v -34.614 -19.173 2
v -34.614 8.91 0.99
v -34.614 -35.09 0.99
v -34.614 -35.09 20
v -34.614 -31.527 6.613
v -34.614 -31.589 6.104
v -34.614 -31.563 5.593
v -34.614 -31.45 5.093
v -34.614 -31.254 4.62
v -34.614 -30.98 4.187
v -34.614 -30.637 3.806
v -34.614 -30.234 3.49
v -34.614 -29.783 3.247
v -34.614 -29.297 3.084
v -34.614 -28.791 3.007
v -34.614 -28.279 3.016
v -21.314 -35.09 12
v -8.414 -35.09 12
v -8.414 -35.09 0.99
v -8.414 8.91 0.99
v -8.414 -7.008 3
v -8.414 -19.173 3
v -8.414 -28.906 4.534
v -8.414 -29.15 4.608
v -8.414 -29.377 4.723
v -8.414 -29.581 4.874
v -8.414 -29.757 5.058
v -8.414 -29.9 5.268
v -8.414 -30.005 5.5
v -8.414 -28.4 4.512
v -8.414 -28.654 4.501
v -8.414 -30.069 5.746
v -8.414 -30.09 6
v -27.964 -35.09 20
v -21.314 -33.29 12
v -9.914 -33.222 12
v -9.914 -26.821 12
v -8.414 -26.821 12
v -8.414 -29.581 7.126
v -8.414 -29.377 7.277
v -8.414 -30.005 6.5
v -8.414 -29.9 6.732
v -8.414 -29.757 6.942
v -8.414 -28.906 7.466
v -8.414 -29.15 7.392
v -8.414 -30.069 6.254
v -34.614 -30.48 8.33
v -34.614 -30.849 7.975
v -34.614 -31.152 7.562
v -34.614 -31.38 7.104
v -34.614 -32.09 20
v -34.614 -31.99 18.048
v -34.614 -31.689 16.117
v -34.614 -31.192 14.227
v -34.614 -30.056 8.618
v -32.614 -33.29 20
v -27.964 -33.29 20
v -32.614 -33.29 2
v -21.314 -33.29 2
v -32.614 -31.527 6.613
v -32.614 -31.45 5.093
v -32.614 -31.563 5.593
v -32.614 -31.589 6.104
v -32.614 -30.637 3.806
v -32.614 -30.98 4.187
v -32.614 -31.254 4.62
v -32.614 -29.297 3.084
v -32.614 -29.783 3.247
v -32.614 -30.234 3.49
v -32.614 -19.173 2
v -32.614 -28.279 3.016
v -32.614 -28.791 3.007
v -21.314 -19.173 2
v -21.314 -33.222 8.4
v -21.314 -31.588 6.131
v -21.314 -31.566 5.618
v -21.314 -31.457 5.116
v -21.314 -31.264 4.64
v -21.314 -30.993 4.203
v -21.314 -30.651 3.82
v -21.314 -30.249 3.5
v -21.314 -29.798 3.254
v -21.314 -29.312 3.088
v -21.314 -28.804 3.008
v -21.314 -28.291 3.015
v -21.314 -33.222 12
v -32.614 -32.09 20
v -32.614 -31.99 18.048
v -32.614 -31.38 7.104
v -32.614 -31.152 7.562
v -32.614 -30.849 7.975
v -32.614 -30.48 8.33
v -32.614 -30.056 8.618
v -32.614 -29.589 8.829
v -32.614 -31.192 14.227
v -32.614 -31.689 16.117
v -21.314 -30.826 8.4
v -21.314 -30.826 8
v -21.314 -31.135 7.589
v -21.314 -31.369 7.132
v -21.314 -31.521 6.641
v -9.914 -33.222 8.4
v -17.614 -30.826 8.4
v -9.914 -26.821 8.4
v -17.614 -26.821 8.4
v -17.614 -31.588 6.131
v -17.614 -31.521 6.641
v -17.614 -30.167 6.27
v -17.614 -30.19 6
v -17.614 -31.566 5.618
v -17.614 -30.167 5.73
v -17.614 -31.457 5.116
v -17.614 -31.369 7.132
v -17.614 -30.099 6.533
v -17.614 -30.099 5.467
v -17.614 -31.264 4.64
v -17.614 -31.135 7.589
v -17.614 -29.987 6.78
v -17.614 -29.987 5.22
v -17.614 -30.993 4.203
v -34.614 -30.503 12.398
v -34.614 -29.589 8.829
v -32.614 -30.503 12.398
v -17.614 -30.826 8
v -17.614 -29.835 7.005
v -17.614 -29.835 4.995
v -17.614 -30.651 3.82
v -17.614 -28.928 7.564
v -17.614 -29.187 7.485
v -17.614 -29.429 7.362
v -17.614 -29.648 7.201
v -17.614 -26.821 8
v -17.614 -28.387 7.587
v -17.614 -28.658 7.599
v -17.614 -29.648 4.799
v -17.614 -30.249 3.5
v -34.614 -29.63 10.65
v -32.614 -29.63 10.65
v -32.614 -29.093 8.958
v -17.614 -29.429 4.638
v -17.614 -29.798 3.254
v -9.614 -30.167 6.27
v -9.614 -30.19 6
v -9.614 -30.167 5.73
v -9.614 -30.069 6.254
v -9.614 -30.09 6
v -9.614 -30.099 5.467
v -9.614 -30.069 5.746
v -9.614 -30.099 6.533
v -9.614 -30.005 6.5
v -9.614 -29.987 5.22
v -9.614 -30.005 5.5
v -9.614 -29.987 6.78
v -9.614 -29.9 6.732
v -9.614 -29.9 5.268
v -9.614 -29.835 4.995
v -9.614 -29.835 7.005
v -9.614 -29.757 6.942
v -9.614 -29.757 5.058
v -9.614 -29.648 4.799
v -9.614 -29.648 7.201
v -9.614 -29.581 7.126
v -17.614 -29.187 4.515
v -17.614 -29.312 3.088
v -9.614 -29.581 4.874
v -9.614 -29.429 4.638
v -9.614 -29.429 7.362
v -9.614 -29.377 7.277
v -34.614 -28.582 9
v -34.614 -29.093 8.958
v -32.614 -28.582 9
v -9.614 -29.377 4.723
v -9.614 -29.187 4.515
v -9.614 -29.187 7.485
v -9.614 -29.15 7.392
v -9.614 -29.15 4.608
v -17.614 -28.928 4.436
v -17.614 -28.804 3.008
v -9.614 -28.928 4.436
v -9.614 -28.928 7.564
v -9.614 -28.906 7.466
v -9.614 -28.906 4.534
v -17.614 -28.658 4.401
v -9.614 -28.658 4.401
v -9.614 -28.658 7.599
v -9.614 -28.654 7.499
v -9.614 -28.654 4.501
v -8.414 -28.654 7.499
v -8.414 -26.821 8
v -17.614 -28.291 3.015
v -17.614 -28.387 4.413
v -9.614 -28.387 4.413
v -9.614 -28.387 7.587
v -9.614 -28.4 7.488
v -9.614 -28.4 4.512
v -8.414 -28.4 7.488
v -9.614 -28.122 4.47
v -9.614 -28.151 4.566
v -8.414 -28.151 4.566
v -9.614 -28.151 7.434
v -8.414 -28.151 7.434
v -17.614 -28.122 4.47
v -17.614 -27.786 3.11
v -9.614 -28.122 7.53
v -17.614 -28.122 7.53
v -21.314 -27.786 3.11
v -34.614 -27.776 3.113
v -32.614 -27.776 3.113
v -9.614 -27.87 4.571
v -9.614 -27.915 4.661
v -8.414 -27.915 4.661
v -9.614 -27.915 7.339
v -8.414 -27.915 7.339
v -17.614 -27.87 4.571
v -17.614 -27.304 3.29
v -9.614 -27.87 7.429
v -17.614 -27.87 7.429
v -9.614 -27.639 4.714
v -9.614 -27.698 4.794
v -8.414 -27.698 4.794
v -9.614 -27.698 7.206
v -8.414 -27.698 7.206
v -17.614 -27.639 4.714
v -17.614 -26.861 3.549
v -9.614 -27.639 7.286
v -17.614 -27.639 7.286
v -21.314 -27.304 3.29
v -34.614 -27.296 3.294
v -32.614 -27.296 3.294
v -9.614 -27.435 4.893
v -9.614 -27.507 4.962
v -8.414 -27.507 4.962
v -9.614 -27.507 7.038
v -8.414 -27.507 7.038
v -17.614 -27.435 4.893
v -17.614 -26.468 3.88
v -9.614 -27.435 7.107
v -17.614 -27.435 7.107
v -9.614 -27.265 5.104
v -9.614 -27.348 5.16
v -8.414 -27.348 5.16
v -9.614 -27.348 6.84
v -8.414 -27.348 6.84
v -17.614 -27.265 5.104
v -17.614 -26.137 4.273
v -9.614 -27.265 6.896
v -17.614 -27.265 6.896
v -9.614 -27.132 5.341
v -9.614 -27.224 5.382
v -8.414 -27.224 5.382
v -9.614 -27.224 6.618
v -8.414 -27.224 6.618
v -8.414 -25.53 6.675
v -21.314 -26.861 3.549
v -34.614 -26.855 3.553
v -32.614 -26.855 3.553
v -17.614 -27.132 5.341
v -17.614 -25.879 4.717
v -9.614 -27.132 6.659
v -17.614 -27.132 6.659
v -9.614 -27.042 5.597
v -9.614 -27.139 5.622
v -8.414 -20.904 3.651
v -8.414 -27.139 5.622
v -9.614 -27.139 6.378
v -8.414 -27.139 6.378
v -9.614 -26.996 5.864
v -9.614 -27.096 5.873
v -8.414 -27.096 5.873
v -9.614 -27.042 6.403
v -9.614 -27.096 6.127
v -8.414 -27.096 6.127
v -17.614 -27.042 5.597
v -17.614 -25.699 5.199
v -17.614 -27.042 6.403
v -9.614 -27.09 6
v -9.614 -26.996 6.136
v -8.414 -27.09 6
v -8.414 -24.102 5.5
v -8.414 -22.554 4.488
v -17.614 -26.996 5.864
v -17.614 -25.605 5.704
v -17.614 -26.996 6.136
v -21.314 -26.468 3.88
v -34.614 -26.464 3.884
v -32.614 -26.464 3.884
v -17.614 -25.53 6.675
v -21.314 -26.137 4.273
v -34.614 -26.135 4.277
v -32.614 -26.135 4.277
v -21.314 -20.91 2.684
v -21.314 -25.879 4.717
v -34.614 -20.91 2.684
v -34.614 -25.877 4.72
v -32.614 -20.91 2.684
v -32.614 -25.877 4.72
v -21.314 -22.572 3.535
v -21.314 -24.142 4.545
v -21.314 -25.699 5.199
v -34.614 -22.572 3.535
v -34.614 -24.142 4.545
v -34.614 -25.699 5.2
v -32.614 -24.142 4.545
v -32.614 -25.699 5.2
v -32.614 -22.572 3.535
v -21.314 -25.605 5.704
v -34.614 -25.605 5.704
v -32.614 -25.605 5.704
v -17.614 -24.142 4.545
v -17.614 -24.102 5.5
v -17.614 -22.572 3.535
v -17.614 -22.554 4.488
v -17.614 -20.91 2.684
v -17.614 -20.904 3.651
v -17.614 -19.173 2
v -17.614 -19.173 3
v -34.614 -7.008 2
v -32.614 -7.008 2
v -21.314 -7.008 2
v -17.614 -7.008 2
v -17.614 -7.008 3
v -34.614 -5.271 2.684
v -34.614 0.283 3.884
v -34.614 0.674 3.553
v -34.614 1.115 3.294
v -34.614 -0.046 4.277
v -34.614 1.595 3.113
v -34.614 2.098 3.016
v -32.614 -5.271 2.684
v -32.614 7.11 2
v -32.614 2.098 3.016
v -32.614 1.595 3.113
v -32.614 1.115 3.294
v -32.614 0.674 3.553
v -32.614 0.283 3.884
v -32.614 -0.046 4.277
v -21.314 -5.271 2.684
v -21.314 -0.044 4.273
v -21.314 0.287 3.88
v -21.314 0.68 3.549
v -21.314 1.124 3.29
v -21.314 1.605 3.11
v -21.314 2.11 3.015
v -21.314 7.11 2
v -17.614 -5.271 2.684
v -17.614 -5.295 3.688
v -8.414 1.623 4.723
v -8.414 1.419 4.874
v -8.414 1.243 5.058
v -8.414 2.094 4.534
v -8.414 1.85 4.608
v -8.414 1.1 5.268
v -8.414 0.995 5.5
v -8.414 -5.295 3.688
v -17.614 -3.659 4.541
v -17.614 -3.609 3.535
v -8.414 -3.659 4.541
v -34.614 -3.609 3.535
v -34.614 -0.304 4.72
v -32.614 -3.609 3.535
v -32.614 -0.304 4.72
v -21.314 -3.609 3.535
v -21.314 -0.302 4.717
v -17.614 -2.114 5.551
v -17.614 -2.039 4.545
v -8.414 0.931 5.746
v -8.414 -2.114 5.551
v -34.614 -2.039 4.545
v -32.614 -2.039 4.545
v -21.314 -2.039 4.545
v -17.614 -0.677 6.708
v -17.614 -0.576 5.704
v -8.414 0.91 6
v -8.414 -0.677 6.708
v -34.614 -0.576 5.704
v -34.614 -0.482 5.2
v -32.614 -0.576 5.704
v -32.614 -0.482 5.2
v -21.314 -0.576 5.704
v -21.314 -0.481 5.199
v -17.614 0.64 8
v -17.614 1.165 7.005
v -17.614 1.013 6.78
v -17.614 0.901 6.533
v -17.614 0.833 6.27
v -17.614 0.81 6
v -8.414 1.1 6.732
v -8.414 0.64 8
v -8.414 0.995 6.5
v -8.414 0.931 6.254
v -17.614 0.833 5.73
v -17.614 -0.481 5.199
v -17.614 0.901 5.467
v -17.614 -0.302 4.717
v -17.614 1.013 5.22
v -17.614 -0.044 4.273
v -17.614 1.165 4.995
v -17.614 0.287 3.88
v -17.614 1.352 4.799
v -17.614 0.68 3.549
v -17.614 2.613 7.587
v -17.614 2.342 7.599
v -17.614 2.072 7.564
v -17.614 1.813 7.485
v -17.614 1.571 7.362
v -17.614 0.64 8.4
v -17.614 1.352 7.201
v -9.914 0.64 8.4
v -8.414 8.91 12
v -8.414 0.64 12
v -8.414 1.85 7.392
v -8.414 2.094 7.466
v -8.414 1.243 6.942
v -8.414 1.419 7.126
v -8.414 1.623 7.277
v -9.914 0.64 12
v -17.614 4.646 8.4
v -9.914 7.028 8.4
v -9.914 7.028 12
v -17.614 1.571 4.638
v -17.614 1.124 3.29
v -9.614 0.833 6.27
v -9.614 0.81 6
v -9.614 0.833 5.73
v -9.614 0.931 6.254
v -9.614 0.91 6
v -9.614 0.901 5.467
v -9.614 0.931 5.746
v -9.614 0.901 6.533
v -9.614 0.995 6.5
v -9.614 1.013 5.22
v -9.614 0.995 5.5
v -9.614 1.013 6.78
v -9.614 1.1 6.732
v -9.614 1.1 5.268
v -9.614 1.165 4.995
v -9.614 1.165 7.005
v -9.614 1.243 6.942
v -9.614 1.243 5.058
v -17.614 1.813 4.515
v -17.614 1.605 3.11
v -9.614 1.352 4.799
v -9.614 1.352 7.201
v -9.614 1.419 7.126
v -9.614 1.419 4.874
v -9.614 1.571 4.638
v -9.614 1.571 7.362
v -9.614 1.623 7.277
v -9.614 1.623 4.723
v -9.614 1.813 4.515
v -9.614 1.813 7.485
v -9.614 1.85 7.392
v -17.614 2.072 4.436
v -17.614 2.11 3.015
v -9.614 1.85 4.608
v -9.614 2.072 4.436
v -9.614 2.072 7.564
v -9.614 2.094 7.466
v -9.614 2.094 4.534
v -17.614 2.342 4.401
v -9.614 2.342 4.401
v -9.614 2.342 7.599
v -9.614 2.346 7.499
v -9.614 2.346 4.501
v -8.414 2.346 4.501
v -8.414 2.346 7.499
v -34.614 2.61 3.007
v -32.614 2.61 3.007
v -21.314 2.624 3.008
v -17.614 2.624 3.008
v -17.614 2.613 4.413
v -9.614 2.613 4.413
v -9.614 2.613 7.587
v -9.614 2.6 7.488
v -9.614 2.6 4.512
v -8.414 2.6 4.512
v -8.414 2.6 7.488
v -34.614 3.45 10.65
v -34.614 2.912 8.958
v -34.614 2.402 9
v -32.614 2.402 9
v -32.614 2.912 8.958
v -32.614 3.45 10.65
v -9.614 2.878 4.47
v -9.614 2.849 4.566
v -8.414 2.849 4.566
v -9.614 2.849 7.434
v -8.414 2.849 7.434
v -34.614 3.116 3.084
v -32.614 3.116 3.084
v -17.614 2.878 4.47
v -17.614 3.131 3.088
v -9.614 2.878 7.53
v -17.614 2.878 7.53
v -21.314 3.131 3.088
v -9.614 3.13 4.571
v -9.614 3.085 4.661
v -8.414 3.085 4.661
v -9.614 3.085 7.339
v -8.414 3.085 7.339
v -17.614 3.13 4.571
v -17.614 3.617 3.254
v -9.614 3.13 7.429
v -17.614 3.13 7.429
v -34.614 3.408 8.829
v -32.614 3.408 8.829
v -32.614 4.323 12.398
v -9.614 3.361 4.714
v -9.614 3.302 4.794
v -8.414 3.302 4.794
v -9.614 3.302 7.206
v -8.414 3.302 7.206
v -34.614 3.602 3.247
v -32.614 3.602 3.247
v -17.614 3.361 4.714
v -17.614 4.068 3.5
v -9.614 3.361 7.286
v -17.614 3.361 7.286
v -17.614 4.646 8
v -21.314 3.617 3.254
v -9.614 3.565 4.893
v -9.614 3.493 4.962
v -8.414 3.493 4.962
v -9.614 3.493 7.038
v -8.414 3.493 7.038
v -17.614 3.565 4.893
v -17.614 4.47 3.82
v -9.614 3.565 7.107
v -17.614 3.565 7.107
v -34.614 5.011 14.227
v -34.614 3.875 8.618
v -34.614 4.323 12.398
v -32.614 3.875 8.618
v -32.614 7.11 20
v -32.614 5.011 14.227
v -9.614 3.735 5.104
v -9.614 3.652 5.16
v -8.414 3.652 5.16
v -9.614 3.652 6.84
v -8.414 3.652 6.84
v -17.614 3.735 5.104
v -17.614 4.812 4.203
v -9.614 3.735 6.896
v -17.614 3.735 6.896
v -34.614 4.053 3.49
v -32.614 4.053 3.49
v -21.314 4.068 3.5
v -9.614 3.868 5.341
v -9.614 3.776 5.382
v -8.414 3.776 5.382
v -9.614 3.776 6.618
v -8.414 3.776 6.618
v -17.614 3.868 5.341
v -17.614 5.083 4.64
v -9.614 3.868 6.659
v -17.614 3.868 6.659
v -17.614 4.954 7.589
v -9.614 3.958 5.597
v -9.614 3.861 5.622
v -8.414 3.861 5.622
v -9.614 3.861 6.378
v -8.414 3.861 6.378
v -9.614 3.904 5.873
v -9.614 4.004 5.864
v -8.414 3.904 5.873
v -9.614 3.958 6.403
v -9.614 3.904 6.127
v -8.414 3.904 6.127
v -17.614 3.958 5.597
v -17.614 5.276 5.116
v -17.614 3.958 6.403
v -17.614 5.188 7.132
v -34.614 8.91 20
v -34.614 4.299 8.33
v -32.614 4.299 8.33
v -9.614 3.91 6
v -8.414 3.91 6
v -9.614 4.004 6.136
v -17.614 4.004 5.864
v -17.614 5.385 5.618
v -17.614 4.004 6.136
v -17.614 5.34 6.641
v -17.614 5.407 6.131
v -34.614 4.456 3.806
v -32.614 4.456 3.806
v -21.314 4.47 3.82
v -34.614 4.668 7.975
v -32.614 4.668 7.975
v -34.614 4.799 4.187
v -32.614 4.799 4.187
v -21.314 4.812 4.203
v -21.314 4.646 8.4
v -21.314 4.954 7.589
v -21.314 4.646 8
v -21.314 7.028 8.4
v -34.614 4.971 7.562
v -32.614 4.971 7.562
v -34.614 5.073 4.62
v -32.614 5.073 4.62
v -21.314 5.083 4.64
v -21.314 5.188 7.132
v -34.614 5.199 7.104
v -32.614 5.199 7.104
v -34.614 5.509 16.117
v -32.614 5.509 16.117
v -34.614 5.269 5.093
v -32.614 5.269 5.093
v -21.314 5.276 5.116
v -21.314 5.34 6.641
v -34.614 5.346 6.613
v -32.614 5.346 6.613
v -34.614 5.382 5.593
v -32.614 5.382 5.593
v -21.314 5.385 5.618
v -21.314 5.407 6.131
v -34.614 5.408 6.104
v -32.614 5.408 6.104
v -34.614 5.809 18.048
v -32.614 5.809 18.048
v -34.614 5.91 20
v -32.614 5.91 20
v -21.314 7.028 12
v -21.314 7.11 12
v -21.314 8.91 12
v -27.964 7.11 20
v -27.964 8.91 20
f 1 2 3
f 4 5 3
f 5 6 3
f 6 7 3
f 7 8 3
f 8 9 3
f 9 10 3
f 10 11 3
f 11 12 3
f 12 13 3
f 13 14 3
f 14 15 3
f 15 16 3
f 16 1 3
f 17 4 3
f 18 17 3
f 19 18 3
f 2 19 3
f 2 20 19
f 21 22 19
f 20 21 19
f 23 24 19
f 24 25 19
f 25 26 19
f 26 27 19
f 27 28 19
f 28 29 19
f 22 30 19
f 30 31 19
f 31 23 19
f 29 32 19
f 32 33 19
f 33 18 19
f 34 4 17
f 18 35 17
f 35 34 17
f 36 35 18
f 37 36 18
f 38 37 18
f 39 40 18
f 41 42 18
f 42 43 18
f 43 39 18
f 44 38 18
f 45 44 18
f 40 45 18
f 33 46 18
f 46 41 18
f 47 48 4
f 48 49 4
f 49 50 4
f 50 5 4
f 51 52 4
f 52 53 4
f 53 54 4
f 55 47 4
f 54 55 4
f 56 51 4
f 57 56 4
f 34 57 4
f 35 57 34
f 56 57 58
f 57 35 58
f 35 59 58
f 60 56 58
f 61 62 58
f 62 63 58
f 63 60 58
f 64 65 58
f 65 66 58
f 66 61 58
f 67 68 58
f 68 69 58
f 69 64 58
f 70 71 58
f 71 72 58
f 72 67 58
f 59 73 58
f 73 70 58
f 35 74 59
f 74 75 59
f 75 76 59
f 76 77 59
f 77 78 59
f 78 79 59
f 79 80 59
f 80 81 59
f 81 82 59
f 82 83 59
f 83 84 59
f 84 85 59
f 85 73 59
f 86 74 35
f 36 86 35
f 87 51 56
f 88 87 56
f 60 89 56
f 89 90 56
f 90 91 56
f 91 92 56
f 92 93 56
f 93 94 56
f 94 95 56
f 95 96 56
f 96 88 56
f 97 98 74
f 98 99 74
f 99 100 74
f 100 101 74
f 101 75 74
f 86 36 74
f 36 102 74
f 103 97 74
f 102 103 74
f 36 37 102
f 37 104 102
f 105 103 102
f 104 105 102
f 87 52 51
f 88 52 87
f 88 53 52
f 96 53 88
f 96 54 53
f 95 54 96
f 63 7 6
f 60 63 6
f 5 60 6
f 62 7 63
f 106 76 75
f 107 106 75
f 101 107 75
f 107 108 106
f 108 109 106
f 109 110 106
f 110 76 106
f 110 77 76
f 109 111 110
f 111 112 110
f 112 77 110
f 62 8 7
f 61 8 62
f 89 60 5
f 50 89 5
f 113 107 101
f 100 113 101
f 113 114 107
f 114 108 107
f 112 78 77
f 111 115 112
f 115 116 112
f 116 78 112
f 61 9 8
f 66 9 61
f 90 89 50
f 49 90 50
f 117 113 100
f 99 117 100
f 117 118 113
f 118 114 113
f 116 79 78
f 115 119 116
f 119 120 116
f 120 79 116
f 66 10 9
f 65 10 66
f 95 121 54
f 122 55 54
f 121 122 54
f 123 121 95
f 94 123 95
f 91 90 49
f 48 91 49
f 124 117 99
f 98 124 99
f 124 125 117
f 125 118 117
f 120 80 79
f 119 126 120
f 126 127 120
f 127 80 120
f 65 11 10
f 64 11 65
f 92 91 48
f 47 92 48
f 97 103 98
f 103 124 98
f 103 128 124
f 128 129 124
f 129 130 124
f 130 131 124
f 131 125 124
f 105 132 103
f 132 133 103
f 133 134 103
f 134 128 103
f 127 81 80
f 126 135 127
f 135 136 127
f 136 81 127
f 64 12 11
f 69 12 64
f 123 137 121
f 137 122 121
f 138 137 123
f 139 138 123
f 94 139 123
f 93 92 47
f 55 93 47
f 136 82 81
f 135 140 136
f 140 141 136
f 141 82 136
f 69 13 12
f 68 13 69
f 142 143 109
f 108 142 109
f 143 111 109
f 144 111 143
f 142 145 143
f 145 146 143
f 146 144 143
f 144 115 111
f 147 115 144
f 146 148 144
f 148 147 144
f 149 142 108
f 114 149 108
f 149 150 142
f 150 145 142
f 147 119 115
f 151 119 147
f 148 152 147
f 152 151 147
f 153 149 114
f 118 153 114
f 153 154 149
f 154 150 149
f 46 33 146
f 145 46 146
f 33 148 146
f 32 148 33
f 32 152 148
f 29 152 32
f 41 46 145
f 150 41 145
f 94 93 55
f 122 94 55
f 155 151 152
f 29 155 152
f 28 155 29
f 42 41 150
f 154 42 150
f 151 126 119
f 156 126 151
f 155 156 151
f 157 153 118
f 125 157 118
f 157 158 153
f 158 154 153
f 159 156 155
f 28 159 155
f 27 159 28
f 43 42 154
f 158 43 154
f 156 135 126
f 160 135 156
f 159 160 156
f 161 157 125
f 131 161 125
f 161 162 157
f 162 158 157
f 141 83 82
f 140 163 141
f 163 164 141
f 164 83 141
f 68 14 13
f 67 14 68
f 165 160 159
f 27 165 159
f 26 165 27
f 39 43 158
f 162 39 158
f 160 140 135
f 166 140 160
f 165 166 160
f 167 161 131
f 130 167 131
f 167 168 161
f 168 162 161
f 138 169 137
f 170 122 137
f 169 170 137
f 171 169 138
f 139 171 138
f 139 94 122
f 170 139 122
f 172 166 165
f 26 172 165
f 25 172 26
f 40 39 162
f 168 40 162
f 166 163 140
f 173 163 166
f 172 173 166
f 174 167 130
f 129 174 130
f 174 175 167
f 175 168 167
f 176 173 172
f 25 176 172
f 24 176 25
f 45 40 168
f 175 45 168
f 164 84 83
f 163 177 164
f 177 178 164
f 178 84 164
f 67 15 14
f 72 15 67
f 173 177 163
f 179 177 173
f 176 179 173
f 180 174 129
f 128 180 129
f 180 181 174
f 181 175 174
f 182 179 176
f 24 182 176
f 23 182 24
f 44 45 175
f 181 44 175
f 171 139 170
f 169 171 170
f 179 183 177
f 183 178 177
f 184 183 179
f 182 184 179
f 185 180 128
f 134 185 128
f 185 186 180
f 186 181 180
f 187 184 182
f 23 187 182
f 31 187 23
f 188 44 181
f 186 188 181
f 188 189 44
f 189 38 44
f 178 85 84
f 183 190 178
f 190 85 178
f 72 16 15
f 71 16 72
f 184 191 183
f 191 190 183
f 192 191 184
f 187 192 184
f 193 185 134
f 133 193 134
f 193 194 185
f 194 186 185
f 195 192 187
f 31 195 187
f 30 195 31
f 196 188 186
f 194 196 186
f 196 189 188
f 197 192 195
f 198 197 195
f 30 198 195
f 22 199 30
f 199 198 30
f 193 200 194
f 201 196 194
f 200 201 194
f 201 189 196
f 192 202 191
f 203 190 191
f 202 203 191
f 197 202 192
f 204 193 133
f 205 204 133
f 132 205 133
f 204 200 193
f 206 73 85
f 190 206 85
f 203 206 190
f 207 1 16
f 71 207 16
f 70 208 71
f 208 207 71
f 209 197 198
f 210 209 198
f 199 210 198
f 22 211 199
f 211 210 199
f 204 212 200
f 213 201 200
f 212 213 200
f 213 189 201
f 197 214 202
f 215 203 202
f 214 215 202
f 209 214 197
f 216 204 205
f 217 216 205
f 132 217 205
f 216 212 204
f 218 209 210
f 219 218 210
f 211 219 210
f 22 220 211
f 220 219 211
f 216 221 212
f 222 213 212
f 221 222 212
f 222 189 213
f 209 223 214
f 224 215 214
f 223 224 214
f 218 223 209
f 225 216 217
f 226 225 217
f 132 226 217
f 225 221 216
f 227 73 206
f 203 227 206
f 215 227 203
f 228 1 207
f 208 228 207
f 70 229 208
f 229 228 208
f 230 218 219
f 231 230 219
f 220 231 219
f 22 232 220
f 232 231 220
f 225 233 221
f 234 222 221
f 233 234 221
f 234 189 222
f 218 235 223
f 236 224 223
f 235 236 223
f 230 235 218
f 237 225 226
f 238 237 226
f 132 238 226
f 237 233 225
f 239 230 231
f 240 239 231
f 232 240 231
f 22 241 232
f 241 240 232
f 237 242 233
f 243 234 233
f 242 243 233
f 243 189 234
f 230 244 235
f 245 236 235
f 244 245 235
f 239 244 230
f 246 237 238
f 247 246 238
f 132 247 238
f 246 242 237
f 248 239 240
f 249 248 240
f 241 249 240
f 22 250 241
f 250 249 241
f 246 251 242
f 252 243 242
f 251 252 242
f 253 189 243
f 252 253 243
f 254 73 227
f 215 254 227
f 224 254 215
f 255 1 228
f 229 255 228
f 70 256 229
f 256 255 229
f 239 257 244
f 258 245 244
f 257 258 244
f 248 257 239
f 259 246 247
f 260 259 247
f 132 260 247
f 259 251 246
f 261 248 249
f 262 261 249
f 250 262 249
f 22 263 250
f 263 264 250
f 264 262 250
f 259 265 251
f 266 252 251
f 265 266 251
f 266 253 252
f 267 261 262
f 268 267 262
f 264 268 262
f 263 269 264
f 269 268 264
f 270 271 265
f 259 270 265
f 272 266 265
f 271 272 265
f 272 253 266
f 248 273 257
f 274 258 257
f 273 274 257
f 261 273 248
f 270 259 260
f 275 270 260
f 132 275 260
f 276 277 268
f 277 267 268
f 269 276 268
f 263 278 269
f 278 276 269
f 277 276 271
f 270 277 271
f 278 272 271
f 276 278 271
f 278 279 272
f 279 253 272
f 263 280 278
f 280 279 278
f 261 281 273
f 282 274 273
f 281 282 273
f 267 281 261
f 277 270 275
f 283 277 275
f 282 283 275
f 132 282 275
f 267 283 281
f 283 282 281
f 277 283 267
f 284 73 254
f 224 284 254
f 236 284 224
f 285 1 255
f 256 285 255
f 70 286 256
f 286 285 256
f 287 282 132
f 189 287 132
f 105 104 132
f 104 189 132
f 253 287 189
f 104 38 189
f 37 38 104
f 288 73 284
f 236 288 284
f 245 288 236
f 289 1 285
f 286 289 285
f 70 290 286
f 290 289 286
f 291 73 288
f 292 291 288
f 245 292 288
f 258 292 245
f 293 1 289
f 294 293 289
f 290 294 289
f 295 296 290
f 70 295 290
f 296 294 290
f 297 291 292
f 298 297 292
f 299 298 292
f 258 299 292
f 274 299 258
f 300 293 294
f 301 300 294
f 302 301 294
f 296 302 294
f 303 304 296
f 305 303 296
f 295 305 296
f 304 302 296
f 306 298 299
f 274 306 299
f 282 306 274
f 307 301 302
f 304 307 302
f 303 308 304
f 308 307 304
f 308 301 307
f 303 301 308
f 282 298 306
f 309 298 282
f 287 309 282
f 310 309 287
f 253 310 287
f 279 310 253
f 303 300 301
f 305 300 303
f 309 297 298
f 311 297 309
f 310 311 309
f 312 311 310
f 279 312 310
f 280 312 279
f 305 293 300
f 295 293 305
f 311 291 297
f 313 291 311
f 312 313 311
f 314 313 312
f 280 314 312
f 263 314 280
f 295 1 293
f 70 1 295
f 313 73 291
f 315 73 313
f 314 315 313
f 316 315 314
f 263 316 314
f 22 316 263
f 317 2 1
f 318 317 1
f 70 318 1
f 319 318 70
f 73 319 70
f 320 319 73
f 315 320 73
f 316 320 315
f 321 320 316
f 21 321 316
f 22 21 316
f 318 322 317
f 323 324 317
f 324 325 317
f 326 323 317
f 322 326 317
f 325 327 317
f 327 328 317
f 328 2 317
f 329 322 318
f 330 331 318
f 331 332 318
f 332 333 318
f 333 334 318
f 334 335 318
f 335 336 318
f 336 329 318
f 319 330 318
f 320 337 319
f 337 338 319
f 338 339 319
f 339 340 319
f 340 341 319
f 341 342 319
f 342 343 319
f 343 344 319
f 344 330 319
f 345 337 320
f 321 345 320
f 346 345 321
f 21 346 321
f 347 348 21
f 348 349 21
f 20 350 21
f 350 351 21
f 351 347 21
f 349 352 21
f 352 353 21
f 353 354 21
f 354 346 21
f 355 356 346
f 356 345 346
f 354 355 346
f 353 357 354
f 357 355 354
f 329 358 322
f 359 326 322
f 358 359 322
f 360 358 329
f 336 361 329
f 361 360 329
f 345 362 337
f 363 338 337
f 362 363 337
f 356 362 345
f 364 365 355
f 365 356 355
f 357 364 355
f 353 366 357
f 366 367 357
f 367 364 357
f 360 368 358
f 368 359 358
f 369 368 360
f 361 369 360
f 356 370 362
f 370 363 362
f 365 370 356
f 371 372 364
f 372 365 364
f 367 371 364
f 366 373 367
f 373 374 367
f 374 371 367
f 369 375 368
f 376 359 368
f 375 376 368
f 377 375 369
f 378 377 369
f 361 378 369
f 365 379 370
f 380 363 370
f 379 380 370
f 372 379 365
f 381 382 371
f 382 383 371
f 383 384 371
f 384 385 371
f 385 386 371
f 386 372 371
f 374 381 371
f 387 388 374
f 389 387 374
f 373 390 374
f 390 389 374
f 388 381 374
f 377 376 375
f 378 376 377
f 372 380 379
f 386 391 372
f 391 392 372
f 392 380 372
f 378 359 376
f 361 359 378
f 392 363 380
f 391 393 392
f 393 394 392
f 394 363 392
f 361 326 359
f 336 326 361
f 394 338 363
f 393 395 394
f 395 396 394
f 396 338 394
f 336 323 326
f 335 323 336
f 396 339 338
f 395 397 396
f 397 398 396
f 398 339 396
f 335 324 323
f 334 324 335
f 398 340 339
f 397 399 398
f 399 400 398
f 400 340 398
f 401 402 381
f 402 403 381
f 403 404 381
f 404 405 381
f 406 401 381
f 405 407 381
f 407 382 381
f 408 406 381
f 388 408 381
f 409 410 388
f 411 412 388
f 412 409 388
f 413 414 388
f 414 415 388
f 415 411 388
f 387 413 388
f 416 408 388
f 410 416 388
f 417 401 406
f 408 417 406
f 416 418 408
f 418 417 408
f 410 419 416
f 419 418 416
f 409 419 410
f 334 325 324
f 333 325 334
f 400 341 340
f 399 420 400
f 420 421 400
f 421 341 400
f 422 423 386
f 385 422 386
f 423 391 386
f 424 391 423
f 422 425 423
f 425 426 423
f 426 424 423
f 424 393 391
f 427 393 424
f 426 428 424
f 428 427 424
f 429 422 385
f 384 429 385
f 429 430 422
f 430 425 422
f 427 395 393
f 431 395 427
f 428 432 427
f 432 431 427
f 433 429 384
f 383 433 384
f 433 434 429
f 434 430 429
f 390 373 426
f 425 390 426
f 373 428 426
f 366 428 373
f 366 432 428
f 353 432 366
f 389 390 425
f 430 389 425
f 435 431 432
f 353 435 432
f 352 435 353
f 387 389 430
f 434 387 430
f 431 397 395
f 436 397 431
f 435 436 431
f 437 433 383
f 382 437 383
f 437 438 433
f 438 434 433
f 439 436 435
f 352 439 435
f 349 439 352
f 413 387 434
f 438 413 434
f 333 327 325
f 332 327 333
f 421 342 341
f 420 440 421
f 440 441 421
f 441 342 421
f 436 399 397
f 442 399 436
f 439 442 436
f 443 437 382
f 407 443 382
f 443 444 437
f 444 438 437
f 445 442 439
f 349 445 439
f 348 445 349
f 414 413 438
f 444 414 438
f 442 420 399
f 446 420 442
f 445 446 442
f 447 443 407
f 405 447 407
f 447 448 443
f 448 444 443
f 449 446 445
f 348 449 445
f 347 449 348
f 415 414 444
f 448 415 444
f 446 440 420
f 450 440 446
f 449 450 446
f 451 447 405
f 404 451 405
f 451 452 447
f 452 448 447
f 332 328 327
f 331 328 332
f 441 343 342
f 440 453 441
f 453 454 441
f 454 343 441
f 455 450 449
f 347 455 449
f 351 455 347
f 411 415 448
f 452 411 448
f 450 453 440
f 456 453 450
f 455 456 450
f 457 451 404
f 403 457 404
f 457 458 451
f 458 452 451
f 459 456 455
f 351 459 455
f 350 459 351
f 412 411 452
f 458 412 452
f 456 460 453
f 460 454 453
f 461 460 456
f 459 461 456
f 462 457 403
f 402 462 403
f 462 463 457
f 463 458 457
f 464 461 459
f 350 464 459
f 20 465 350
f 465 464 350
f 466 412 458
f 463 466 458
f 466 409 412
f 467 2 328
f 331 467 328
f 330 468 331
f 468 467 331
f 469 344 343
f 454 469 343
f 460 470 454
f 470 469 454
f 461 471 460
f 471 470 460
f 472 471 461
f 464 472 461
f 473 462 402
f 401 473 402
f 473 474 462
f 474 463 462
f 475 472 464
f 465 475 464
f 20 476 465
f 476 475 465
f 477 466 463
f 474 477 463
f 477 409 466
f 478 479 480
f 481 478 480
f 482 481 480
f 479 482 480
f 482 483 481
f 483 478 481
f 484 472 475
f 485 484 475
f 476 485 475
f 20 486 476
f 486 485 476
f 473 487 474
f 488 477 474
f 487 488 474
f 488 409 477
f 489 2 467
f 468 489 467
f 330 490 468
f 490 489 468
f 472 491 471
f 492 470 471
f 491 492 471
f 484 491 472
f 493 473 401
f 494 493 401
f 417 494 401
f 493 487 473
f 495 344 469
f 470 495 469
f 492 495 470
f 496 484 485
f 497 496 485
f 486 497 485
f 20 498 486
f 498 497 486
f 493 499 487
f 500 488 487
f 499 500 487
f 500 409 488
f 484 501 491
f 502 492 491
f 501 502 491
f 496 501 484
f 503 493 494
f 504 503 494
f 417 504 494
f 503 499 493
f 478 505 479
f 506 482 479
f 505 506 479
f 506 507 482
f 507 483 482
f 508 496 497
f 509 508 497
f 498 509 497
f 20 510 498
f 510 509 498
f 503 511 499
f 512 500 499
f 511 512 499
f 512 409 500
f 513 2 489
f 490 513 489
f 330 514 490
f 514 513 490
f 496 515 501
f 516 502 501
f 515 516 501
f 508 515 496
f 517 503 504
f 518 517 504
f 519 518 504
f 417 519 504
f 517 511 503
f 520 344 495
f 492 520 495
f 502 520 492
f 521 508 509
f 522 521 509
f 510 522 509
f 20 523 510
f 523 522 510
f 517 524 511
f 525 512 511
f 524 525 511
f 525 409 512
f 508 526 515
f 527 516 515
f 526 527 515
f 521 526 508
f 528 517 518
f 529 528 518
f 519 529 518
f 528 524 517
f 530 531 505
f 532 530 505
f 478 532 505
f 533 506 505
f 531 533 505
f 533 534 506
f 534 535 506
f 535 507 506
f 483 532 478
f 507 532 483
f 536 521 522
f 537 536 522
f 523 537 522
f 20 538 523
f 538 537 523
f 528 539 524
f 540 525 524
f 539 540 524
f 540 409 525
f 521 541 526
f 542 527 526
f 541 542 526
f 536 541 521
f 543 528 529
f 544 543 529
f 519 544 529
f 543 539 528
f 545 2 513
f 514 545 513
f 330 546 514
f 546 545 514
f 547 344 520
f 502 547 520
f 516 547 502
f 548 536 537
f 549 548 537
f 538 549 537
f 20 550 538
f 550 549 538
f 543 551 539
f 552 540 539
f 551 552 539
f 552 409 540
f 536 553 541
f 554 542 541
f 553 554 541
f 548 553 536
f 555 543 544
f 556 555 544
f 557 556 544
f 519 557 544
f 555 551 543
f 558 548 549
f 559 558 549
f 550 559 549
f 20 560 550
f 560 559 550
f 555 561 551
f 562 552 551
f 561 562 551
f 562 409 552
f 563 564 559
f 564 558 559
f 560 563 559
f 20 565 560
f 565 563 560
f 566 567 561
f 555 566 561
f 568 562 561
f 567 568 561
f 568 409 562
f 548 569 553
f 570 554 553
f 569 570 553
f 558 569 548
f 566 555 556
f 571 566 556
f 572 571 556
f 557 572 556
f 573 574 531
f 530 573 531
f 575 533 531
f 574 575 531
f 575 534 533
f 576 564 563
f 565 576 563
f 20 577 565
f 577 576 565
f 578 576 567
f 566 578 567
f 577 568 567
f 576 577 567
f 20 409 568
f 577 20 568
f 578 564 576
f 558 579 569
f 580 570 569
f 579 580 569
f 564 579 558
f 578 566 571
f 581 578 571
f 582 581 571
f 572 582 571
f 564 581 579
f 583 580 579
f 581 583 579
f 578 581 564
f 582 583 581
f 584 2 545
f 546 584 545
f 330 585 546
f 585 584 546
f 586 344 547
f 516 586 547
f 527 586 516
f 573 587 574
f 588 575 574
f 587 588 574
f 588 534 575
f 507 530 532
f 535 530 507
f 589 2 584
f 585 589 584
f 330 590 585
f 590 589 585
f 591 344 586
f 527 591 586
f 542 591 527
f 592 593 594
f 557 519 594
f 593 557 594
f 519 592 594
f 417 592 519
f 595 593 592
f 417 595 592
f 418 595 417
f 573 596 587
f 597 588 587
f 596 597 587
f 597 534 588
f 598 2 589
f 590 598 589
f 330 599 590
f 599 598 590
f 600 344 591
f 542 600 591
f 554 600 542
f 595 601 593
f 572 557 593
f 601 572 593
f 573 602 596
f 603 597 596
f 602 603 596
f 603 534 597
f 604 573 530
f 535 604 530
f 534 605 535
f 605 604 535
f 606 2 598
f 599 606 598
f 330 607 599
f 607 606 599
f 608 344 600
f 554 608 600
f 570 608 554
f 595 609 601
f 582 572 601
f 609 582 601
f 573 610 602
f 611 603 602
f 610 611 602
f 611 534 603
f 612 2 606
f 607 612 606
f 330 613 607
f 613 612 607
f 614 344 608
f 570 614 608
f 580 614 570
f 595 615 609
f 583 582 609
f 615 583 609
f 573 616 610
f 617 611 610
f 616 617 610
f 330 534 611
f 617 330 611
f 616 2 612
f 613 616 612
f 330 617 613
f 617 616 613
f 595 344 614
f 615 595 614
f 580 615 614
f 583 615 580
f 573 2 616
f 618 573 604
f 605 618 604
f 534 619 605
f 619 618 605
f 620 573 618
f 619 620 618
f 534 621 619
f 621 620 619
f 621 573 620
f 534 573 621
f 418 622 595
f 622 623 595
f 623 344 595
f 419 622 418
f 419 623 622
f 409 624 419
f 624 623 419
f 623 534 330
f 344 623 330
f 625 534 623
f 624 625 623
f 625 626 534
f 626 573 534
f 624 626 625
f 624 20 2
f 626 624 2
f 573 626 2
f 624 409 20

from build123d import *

# Parameters (mm, degrees)
CROQUIS1_W               = 25
CROQUIS1_H               = 44
SALIENTE_EXTRUIR1_DEPTH  = 20
CROQUIS2_W               = 11.3
CROQUIS2_H               = 40.4
CORTAR_EXTRUIR1_DEPTH    = 18
CROQUIS3_W               = 10.7
CROQUIS3_H               = 44
CORTAR_EXTRUIR2_DEPTH    = 12
CORTAR_EXTRUIR3_START    = -25
CROQUIS4_R               = 1.6
CORTAR_EXTRUIR3_DEPTH    = 25
CROQUIS5_R               = 3
CORTAR_EXTRUIR4_DEPTH    = 17
CROQUIS7_W               = 10.7
CROQUIS7_H               = 2.131966011
SALIENTE_EXTRUIR2_DEPTH  = 12
CROQUIS9_W               = 11.3
CROQUIS9_H               = 12.16552506
SALIENTE_EXTRUIR3_DEPTH  = 2
SALIENTE_EXTRUIR4_DEPTH  = 2
CORTAR_EXTRUIR10_START   = -25
CROQUIS12_W              = 0.99
CROQUIS12_H              = 44
CORTAR_EXTRUIR10_DEPTH   = 25
CROQUIS13_W              = 8
CROQUIS13_H              = 44
CORTAR_EXTRUIR11_DEPTH   = 11.7
SALIENTE_EXTRUIR5_DEPTH  = 11.7
CROQUIS15_W              = 10.763613753
CROQUIS15_H              = 40.736067978
CORTAR_EXTRUIR12_DEPTH   = 4
CROQUIS16_R              = 1.5
SALIENTE_EXTRUIR6_DEPTH  = 1.2
CORTAR_EXTRUIR13_START   = -44
CORTAR_EXTRUIR13_DEPTH   = 44
CROQUIS18_W              = 0.936386247
CROQUIS18_H              = 40.568033989
CORTAR_EXTRUIR14_DEPTH   = 4
SALIENTE_EXTRUIR7_START  = -9.2
SALIENTE_EXTRUIR7_DEPTH  = 9.2
SALIENTE_EXTRUIR8_START  = -12.9
CROQUIS20_W              = 4
CROQUIS20_H              = 0.236067978
CROQUIS20_H_2            = 0.25
SALIENTE_EXTRUIR8_DEPTH  = 12.9
CROQUIS21_W              = 4
CROQUIS21_H              = 6.401046148
CROQUIS21_H_2            = 6.387114126
SALIENTE_EXTRUIR9_DEPTH  = 1.5
SALIENTE_EXTRUIR10_DEPTH = 0.4


with BuildPart() as part:
    # Croquis1 → Saliente-Extruir1 (new body)
    with BuildSketch(Plane.XY):
        with Locations((-22.114132301, -13.090425532)):
            Rectangle(CROQUIS1_W, CROQUIS1_H)
    extrude(amount=SALIENTE_EXTRUIR1_DEPTH)

    # Croquis2 → Cortar-Extruir1 (cut)
    with BuildSketch(Plane.XY.offset(20)):
        with Locations((-26.964132301, -13.090425532)):
            Rectangle(CROQUIS2_W, CROQUIS2_H)
    extrude(amount=-CORTAR_EXTRUIR1_DEPTH, mode=Mode.SUBTRACT)

    # Croquis3 → Cortar-Extruir2 (cut)
    with BuildSketch(Plane.XY.offset(20)):
        with Locations((-14.964132301, -13.090425532)):
            Rectangle(CROQUIS3_W, CROQUIS3_H)
    extrude(amount=-CORTAR_EXTRUIR2_DEPTH, mode=Mode.SUBTRACT)

    # Croquis4 → Cortar-Extruir3 (cut)
    with BuildSketch(Plane.ZY.offset(34.614132301).offset(CORTAR_EXTRUIR3_START)):
        with Locations((6, 2.409574468)):
            Circle(CROQUIS4_R)
        with Locations((6, -28.590425532)):
            Circle(CROQUIS4_R)
        with BuildLine():
            Line((20, 5.909574468), (20, -32.090425532))
            ThreePointArc((20, -32.090425532), (1, -13.090425532), (20, 5.909574468))
        make_face()
    extrude(amount=CORTAR_EXTRUIR3_DEPTH, mode=Mode.SUBTRACT)

    # Croquis5 → Cortar-Extruir4 (cut)
    with BuildSketch(Plane.ZY.offset(34.614132301)):
        with Locations((6, 2.409574468)):
            Circle(CROQUIS5_R)
        with Locations((6, -28.590425532)):
            Circle(CROQUIS5_R)
    extrude(amount=-CORTAR_EXTRUIR4_DEPTH, mode=Mode.SUBTRACT)

    # Croquis7 → Saliente-Extruir2 (add)
    with BuildSketch(Plane.XY.offset(8)):
        with Locations((-14.964132301, -34.024442527)):
            Rectangle(CROQUIS7_W, CROQUIS7_H)
        with Locations((-14.964132301, 7.843591463)):
            Rectangle(CROQUIS7_W, CROQUIS7_H)
    extrude(amount=SALIENTE_EXTRUIR2_DEPTH)

    # Croquis9 → Saliente-Extruir3 (add)
    with BuildSketch(Plane.XY.offset(2)):
        with Locations((-26.964132301, -13.090425532)):
            Rectangle(CROQUIS9_W, CROQUIS9_H)
    extrude(amount=-SALIENTE_EXTRUIR3_DEPTH)

    # Croquis11 → Saliente-Extruir4 (add)
    with BuildSketch(Plane.ZY.offset(32.614132301)):
        with BuildLine():
            Line((2, -7.007663002), (2, -19.173188062))
            ThreePointArc((2, -19.173188062), (1, -13.090425532), (2, -7.007663002))
        make_face()
    extrude(amount=SALIENTE_EXTRUIR4_DEPTH)

    # Croquis12 → Cortar-Extruir10 (cut)
    with BuildSketch(Plane.ZY.offset(34.614132301).offset(CORTAR_EXTRUIR10_START)):
        with Locations((0.495, -13.090425532)):
            Rectangle(CROQUIS12_W, CROQUIS12_H)
    extrude(amount=CORTAR_EXTRUIR10_DEPTH, mode=Mode.SUBTRACT)

    # Croquis13 → Cortar-Extruir11 (cut)
    with BuildSketch(Plane(origin=(-9.614132301, 0, 0), x_dir=(0, 0, -1), z_dir=(1, 0, 0))):
        with Locations((-16, -13.090425532)):
            Rectangle(CROQUIS13_W, CROQUIS13_H)
    extrude(amount=-CORTAR_EXTRUIR11_DEPTH, mode=Mode.SUBTRACT)

    # Croquis14 → Saliente-Extruir5 (add)
    with BuildSketch(Plane(origin=(-21.314132301, 0, 0), x_dir=(0, 0, -1), z_dir=(1, 0, 0))):
        with BuildLine():
            Line((-2, -19.173188062), (-2, -7.007663002))
            ThreePointArc((-2, -7.007663002), (-1, -13.090425532), (-2, -19.173188062))
        make_face()
    extrude(amount=SALIENTE_EXTRUIR5_DEPTH)

    # Croquis15 → Cortar-Extruir12 (cut)
    with BuildSketch(Plane.XY.offset(12)):
        with Locations((-14.995939178, -13.090425532)):
            Rectangle(CROQUIS15_W, CROQUIS15_H)
    extrude(amount=-CORTAR_EXTRUIR12_DEPTH, mode=Mode.SUBTRACT)

    # Croquis16 → Saliente-Extruir6 (add)
    with BuildSketch(Plane(origin=(-9.614132301, 0, 0), x_dir=(0, 0, -1), z_dir=(1, 0, 0))):
        with BuildLine():
            Line((-8, -27.821345395), (-8, -33.458459521))
            Line((-8, -33.458459521), (-12, -33.458459521))
            Line((-12, -33.458459521), (-12, -35.090425532))
            Line((-12, -35.090425532), (-0.99, -35.090425532))
            Line((-0.99, -35.090425532), (-0.99, 8.909574468))
            Line((-0.99, 8.909574468), (-12, 8.909574468))
            Line((-12, 8.909574468), (-12, 7.277608457))
            Line((-12, 7.277608457), (-8, 7.277608457))
            Line((-8, 7.277608457), (-8, 1.640494331))
            ThreePointArc((-8, 1.640494331), (-4.389181434, -2.259804881), (-2, -7.007663002))
            Line((-2, -7.007663002), (-2, -19.173188062))
            ThreePointArc((-2, -19.173188062), (-4.389181434, -23.921046183), (-8, -27.821345395))
        make_face()
        with Locations((-6, -28.590425532)):
            Circle(CROQUIS16_R, mode=Mode.SUBTRACT)
        with Locations((-6, 2.409574468)):
            Circle(CROQUIS16_R, mode=Mode.SUBTRACT)
    extrude(amount=SALIENTE_EXTRUIR6_DEPTH)

    # Croquis17 → Cortar-Extruir13 (cut)
    with BuildSketch(Plane.XZ.offset(35.090425532).offset(CORTAR_EXTRUIR13_START)):
        Polygon((-21.314132301, 12), (-21.314132301, 20), (-27.964132301, 20), align=None)
    extrude(amount=CORTAR_EXTRUIR13_DEPTH, mode=Mode.SUBTRACT)

    # Croquis18 → Cortar-Extruir14 (cut)
    with BuildSketch(Plane.XY.offset(12)):
        with Locations((-20.845939178, -13.006408538)):
            Rectangle(CROQUIS18_W, CROQUIS18_H)
    extrude(amount=-CORTAR_EXTRUIR14_DEPTH, mode=Mode.SUBTRACT)

    # Croquis19 → Saliente-Extruir7 (add)
    with BuildSketch(Plane(origin=(-8.414132301, 0, 0), x_dir=(0, 0, -1), z_dir=(1, 0, 0)).offset(SALIENTE_EXTRUIR7_START)):
        with BuildLine():
            Line((-2, -19.173188062), (-2, -7.007663002))
            ThreePointArc((-2, -7.007663002), (-4.389181434, -2.259804881), (-8, 1.640494331))
            Line((-8, 1.640494331), (-8, 0.640494331))
            ThreePointArc((-8, 0.640494331), (-5.026875227, -2.874277954), (-3, -7.007663002))
            Line((-3, -7.007663002), (-3, -19.173188062))
            ThreePointArc((-3, -19.173188062), (-4.972698099, -23.341991528), (-8, -26.821345395))
            Line((-8, -26.821345395), (-8, -27.821345395))
            ThreePointArc((-8, -27.821345395), (-4.389181434, -23.921046183), (-2, -19.173188062))
        make_face()
    extrude(amount=SALIENTE_EXTRUIR7_DEPTH)

    # Croquis20 → Saliente-Extruir8 (add)
    with BuildSketch(Plane(origin=(-8.414132301, 0, 0), x_dir=(0, 0, -1), z_dir=(1, 0, 0)).offset(SALIENTE_EXTRUIR8_START)):
        with Locations((-10, -33.340425532)):
            Rectangle(CROQUIS20_W, CROQUIS20_H)
        with Locations((-10, 7.152608457)):
            Rectangle(CROQUIS20_W, CROQUIS20_H_2)
    extrude(amount=SALIENTE_EXTRUIR8_DEPTH)

    # Croquis21 → Saliente-Extruir9 (add)
    with BuildSketch(Plane(origin=(-8.414132301, 0, 0), x_dir=(0, 0, -1), z_dir=(1, 0, 0))):
        with Locations((-10, -30.021868469)):
            Rectangle(CROQUIS21_W, CROQUIS21_H)
        with Locations((-10, 3.834051394)):
            Rectangle(CROQUIS21_W, CROQUIS21_H_2)
    extrude(amount=-SALIENTE_EXTRUIR9_DEPTH)

    # Croquis22 → Saliente-Extruir10 (add)
    with BuildSketch(Plane.XY.offset(8)):
        Polygon((-9.914132301, 7.027608457), (-21.314132301, 7.027608457), (-21.314132301, 4.645642446), (-17.614132301, 4.645642446), (-17.614132301, 0.640494331), (-9.914132301, 0.640494331), align=None)
        Polygon((-9.914132301, -26.821345395), (-17.614132301, -26.821345395), (-17.614132301, -30.826493509), (-21.314132301, -30.826493509), (-21.314132301, -33.222391543), (-9.914132301, -33.222391543), align=None)
    extrude(amount=SALIENTE_EXTRUIR10_DEPTH)


solid = part.part
